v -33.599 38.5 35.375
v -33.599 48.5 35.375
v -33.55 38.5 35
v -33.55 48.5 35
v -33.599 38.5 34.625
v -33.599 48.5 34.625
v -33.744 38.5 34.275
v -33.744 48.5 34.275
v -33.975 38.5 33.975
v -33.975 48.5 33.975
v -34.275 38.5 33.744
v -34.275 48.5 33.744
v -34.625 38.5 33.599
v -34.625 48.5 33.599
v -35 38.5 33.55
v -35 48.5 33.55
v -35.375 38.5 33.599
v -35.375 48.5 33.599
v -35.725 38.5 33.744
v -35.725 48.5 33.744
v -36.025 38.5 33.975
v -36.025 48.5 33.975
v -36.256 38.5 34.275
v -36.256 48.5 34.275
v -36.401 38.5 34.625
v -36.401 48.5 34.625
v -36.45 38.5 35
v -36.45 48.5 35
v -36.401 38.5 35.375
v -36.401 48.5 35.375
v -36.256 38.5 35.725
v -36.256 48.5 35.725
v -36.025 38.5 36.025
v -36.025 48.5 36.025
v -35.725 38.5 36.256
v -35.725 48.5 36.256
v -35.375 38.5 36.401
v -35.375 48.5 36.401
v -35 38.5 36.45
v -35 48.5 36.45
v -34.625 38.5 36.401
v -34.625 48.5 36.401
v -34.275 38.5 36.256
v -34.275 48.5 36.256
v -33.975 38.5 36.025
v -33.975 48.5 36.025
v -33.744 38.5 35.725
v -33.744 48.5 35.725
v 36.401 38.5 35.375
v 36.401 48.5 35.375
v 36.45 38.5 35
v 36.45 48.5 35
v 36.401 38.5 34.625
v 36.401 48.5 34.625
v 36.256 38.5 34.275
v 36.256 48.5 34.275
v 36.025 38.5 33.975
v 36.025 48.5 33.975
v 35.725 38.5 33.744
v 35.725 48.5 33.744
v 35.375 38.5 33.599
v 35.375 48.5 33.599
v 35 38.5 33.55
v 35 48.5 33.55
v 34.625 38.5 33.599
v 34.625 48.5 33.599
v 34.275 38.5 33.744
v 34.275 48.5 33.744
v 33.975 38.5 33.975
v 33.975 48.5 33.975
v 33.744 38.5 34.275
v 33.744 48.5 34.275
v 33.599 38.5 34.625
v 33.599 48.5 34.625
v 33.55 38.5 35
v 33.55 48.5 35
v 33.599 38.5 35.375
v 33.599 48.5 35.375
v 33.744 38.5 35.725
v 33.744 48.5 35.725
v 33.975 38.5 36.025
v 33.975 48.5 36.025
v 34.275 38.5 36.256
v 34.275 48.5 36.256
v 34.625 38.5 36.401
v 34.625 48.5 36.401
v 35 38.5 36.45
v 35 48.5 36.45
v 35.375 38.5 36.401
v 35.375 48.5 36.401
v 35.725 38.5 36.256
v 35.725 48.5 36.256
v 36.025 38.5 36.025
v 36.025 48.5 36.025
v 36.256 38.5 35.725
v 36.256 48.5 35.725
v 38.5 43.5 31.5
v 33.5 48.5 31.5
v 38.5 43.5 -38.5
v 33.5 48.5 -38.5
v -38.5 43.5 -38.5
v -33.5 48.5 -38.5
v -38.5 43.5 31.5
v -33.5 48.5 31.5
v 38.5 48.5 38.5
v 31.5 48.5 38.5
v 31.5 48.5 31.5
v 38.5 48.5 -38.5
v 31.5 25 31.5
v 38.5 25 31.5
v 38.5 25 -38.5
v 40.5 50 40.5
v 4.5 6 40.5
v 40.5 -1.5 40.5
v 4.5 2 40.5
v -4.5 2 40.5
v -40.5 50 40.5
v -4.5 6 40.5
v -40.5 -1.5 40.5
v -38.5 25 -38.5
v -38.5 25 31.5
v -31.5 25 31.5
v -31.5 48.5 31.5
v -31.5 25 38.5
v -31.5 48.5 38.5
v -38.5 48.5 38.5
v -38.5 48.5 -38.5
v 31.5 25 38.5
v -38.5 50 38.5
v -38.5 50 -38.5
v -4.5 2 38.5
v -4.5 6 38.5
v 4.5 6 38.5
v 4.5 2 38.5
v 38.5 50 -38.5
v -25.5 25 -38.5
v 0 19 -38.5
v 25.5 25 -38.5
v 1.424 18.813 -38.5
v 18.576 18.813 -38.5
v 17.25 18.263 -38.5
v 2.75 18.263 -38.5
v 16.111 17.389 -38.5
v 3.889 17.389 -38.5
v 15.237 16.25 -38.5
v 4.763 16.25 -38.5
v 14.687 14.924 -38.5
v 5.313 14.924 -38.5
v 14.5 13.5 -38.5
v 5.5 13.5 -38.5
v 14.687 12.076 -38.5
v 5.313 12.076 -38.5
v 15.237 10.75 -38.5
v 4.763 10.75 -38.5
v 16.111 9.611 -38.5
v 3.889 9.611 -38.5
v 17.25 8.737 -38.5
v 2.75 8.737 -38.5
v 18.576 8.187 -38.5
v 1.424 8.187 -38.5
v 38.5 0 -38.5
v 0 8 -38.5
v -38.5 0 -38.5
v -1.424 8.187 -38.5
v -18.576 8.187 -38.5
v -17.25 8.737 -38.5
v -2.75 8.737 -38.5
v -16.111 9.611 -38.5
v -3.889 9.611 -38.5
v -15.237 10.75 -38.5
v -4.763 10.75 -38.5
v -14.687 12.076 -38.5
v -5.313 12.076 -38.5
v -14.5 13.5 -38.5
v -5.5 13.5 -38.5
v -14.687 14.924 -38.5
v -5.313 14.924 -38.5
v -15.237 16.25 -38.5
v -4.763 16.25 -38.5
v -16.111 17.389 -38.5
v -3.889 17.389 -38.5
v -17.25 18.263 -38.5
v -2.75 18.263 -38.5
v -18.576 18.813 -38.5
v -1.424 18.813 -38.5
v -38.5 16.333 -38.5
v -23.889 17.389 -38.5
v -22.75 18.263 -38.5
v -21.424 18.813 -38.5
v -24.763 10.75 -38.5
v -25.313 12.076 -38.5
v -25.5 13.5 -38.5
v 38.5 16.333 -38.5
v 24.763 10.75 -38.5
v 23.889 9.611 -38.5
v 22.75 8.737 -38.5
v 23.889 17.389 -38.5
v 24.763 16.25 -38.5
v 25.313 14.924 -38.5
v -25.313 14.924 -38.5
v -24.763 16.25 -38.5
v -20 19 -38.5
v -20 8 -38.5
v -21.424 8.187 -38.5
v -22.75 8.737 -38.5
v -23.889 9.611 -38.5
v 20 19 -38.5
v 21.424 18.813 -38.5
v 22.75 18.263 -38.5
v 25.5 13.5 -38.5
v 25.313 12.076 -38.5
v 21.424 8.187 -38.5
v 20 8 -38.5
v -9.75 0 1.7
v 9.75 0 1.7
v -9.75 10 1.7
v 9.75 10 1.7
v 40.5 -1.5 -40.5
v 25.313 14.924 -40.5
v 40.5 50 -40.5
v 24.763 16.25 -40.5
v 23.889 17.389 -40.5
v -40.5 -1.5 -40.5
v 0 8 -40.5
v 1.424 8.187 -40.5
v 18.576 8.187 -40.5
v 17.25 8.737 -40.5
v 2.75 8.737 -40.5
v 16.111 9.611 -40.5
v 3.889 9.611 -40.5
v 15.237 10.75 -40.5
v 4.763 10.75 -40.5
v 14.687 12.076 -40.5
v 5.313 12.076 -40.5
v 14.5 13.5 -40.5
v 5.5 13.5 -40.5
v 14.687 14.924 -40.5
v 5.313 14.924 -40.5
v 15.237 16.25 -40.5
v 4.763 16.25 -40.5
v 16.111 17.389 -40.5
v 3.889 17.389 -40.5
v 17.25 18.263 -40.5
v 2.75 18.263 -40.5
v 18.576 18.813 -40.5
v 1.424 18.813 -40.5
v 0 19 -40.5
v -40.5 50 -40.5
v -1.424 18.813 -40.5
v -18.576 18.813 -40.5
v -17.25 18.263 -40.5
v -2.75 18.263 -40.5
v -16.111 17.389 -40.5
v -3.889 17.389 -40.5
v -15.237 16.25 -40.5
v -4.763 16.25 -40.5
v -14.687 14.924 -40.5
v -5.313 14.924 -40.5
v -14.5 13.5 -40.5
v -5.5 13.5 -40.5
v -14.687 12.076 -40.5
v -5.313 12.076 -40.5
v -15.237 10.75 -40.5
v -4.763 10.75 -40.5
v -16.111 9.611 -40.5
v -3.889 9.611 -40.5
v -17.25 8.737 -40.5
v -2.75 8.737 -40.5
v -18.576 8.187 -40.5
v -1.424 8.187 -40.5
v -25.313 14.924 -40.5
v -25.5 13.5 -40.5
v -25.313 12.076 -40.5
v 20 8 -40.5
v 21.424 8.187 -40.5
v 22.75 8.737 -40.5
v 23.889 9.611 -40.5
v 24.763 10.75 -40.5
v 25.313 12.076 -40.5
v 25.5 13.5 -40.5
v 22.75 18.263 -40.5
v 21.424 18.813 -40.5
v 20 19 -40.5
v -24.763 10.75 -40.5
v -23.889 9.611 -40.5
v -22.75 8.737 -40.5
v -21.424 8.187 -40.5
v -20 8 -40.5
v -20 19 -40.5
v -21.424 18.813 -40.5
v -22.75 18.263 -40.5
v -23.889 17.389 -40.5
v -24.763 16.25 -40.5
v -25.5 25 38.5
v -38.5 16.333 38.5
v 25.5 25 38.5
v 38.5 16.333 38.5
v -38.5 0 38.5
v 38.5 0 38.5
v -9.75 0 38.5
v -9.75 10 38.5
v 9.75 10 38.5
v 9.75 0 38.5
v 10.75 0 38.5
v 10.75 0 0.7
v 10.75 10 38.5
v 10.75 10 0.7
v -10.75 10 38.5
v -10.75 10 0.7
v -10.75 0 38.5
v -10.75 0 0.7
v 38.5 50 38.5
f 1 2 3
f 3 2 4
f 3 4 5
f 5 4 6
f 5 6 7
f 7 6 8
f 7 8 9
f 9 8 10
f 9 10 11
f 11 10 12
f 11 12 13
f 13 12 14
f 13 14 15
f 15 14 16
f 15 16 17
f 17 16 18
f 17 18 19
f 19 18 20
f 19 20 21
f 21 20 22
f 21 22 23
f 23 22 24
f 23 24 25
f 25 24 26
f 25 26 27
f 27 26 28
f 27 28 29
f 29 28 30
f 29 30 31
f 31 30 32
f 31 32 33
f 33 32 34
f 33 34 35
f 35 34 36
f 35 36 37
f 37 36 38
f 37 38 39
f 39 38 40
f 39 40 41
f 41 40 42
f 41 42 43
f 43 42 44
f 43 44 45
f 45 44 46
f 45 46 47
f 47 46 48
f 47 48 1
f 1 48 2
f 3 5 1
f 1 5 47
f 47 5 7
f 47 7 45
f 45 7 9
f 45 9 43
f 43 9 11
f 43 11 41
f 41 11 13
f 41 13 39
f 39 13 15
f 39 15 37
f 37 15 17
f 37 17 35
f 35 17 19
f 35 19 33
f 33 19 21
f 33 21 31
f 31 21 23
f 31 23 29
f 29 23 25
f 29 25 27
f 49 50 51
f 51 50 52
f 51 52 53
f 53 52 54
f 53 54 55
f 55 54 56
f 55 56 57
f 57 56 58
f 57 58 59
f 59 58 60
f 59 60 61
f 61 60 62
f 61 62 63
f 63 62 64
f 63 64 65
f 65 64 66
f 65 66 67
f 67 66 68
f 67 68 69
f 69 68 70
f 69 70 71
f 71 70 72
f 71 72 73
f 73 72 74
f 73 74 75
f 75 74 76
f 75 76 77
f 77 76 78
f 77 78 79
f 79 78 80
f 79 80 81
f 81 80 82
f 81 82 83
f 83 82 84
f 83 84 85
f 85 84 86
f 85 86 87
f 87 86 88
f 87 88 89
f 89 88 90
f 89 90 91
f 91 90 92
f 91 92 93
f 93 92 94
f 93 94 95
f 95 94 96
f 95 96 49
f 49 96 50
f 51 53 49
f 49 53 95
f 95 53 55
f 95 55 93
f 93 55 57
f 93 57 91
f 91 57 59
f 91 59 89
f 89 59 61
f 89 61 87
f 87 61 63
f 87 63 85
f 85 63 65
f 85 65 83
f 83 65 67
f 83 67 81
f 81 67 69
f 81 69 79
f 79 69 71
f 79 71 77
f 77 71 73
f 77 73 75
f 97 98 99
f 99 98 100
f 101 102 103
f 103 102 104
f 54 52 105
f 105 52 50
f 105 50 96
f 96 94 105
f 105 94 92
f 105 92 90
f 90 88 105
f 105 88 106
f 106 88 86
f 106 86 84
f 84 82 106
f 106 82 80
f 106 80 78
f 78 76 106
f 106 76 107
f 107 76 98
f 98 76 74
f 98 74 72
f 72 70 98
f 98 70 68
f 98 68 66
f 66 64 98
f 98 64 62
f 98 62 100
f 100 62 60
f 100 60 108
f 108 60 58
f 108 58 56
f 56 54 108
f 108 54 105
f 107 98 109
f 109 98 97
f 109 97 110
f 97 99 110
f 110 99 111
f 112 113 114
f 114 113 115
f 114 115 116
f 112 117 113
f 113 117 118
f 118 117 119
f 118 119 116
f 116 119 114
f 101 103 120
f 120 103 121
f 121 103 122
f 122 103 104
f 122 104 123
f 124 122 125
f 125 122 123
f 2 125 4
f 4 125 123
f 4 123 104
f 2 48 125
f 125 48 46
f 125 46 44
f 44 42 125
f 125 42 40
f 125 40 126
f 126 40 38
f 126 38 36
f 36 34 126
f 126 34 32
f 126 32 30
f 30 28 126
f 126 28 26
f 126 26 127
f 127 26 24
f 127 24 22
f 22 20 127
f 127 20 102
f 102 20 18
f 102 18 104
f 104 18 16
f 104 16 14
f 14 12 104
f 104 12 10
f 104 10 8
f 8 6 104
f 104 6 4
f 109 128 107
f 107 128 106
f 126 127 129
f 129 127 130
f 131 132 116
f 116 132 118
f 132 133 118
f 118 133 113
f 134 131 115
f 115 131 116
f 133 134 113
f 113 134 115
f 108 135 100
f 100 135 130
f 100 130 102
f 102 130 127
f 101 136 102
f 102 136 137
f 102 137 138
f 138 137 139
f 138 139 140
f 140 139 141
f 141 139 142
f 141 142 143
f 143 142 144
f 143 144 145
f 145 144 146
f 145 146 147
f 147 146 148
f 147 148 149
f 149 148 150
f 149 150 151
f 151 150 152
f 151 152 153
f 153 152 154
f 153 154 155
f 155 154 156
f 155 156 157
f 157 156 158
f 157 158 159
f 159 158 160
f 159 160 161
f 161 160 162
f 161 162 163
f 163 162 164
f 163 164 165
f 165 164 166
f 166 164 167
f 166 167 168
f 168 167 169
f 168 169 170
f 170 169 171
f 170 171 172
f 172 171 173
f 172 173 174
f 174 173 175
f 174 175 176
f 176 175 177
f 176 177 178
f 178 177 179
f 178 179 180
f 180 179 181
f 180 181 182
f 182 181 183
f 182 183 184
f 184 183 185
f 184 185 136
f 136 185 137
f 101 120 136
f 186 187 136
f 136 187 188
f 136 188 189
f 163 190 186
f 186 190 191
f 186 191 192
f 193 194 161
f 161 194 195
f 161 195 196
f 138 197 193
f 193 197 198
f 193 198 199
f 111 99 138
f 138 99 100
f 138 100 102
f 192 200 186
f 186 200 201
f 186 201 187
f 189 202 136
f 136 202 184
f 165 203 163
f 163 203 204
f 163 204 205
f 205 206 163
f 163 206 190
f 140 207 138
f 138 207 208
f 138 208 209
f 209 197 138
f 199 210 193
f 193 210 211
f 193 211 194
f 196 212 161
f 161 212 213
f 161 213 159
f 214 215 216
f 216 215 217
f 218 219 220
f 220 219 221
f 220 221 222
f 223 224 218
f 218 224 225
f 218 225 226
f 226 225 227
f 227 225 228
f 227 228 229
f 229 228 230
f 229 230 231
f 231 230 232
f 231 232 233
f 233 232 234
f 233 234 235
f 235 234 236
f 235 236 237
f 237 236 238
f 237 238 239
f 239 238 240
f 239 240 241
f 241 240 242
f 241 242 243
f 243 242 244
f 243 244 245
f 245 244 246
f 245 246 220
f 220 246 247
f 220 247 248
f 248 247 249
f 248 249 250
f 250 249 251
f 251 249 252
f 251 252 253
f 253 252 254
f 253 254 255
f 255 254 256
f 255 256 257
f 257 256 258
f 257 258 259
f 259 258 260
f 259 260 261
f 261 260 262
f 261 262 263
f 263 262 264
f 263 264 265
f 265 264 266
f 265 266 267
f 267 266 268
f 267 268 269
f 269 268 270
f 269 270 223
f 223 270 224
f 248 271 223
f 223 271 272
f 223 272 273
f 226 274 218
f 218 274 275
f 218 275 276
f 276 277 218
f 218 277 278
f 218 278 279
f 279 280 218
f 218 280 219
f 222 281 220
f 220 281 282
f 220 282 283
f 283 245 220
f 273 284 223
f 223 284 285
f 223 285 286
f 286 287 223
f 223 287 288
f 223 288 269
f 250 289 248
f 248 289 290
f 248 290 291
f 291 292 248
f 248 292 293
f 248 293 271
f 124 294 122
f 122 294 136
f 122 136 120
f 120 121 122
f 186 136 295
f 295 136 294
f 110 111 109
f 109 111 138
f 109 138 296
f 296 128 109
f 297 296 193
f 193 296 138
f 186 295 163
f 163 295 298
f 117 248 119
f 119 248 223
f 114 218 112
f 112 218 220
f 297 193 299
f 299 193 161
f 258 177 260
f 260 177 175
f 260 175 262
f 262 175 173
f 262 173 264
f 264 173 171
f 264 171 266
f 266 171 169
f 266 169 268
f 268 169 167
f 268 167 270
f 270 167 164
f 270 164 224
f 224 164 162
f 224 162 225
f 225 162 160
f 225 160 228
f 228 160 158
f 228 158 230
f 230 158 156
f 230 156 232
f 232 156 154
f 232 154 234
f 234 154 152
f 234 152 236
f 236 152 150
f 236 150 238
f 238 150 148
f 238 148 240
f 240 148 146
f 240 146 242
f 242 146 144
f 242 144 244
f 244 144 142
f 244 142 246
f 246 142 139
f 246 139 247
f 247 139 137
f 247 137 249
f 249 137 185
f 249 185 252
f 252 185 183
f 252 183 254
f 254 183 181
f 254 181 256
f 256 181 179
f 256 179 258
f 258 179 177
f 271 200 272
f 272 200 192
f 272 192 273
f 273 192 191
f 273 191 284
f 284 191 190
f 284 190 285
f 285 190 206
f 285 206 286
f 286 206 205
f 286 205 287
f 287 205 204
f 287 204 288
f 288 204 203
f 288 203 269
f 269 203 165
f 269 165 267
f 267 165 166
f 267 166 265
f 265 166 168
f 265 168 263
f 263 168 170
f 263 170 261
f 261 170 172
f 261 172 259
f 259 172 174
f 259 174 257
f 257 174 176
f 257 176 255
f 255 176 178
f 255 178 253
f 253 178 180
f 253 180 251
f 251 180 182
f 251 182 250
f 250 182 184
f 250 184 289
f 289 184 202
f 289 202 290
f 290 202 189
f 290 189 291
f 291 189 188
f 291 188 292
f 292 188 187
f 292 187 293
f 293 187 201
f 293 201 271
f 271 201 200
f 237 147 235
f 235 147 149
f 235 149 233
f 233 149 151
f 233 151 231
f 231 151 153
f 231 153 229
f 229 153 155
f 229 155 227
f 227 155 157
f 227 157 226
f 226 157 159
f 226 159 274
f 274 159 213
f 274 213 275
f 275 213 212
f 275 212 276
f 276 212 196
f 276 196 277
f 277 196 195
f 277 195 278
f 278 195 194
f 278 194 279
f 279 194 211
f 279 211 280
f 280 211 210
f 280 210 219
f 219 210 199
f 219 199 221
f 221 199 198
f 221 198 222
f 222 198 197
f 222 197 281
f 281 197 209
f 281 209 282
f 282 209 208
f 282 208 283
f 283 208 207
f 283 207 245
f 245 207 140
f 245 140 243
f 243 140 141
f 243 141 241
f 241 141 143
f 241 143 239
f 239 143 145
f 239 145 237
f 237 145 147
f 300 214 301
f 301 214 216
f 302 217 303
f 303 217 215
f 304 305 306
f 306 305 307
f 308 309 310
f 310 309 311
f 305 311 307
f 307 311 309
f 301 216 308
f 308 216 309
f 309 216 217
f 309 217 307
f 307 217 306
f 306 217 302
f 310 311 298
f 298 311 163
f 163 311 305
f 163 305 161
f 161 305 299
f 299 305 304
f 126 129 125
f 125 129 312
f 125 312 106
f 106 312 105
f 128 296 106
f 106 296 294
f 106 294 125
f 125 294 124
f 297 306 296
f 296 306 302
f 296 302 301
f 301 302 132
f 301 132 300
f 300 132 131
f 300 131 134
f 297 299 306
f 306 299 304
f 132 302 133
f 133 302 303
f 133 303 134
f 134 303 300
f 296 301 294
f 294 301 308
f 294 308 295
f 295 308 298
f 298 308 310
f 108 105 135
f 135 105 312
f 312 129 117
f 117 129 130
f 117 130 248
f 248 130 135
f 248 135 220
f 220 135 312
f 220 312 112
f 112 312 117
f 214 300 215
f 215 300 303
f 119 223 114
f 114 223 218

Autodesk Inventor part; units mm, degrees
ref_plane "YZ Plane" through (0, 0, 0) normal (1, 0, 0) x (0, 1, 0)
ref_plane "XZ Plane" through (0, 0, 0) normal (0, 1, 0) x (-1, 0, 0)
ref_plane "XY Plane" through (0, 0, 0) normal (0, 0, 1) x (1, 0, 0)
sketch "Sketch1" plane through (0, 0, 0) normal (0, 1, 0) x (-1, 0, 0)
  line L0 (40.5, 40.5) -> (-40.5, 40.5)
  line L1 (-40.5, 40.5) -> (-40.5, -40.5)
  line L2 (-40.5, -40.5) -> (40.5, -40.5)
  line L3 (40.5, -40.5) -> (40.5, 40.5)
  line L4 (40.5, 40.5) -> (-40.5, -40.5) construction
  line L5 (-40.5, 40.5) -> (40.5, -40.5) construction
  point P0 (0, 0)
  dimension "box_width" = 81
  dimension "box_height" = 81
extrude "Base" add sketch "Sketch1" against normal blind 1.5
sketch "Sketch2" plane through (0, 0, 0) normal (0, 1, 0) x (-1, 0, 0)
  line L0 (40.5, -40.5) -> (-40.5, -40.5) projected
  line L1 (40.5, 40.5) -> (-40.5, 40.5)
  line L2 (-40.5, 40.5) -> (-40.5, -40.5)
  line L3 (-40.5, -40.5) -> (40.5, -40.5)
  line L4 (40.5, -40.5) -> (40.5, 40.5)
  line L5 (40.5, 40.5) -> (-40.5, -40.5) construction
  line L6 (-40.5, 40.5) -> (40.5, -40.5) construction
  line L7 (38.5, 38.5) -> (-38.5, 38.5)
  line L8 (-38.5, 38.5) -> (-38.5, -38.5)
  line L9 (-38.5, -38.5) -> (38.5, -38.5)
  line L10 (38.5, -38.5) -> (38.5, 38.5)
  line L11 (38.5, 38.5) -> (-38.5, -38.5) construction
  line L12 (-38.5, 38.5) -> (38.5, -38.5) construction
  point P0 (0, 0)
  dimension "wall_thickness" = 2
extrude "Wall" add sketch "Sketch2" along normal blind 50
sketch "Sketch3" plane through (0, 0, 0) normal (0, 1, 0) x (-1, 0, 0)
  line L0 (-9.75, 39.5) -> (9.75, 39.5)
  line L1 (9.75, 39.5) -> (9.75, 1.7)
  line L2 (9.75, 1.7) -> (-9.75, 1.7)
  line L3 (-9.75, 1.7) -> (-9.75, 39.5)
  line L4 (-9.75, 39.5) -> (9.75, 1.7) construction
  line L5 (9.75, 39.5) -> (-9.75, 1.7) construction
  line L6 (0, 20.6) -> (0, 0) construction
  line L7 (10.75, 40.5) -> (-10.75, 40.5)
  line L8 (-10.75, 40.5) -> (-10.75, 0.7)
  line L9 (-10.75, 0.7) -> (10.75, 0.7)
  line L10 (10.75, 0.7) -> (10.75, 40.5)
  line L11 (10.75, 40.5) -> (-10.75, 0.7) construction
  line L12 (-10.75, 40.5) -> (10.75, 0.7) construction
  line L13 (40.5, 40.5) -> (-40.5, 40.5) projected
  point P0 (0, 40.5)
  dimension "d7" = 37.8
  dimension "d8" = 19.5
  dimension "d9" = 1
  dimension "d10" = 1
extrude "Teensy Wall" add sketch "Sketch3" along normal blind 10
sketch "Sketch4" plane through (40.5, -1.5, -40.5) normal (0, 0, -1) x (-1, 0, 0)
  line L0 (79, 51.5) -> (2, 51.5) construction
  line L1 (2, 51.5) -> (79, 51.5) construction
  line L2 (40.5, 51.5) -> (40.5, 15) construction
  line L3 (40.5, 15) -> (20.5, 15) construction
  circle A0 centre (20.5, 15) radius 5.5
  line L4 (40.5, 15) -> (40.5, 0) construction
  line L5 (81, 0) -> (0, 0) construction
  circle A1 centre (40.5, 15) radius 5.5
  circle A2 centre (60.5, 15) radius 5.5
  dimension "d21" = 11
  dimension "d23" = 20
  dimension "d59" = 20
extrude "BNC Holes" cut sketch "Sketch4" against normal up to surface (2 mm away)
sketch "Sketch7" plane through (-38.5, 0, -38.5) normal (0, 0, 1) x (1, 0, 0)
  line L0 (79, 50) -> (-2, 50) projected
  line L1 (-2, -1.5) -> (-2, 50) projected
  line L2 (-2, 50) -> (-2, 25) construction
  line L3 (-2, 25) -> (13, 25)
  line L4 (13, 25) -> (-2, 15)
  line L5 (-2, 15) -> (-2, 25)
  line L6 (38.5, 50) -> (38.5, 0) construction
  line L7 (79, -1.5) -> (79, 50)
  line L8 (79, 50) -> (79, 25) construction
  line L9 (79, 25) -> (64, 25)
  line L10 (64, 25) -> (79, 15)
  line L11 (79, 15) -> (79, 25)
  point P0 (-2, 30)
  dimension "d32" = 25
  dimension "d33" = 10
  dimension "d34" = 15
extrude "Battery Support" add sketch "Sketch7" along normal up to next
sketch "Sketch8" plane through (-40.5, -1.5, 40.5) normal (0, 0, 1) x (1, 0, 0)
  line L0 (79, 51.5) -> (2, 51.5) construction
  line L1 (40.5, 51.5) -> (40.5, 1.5) construction
  line L2 (36, 3.5) -> (45, 3.5)
  line L3 (45, 3.5) -> (45, 7.5)
  line L4 (45, 7.5) -> (36, 7.5)
  line L5 (36, 7.5) -> (36, 3.5)
  line L6 (36, 3.5) -> (45, 7.5) construction
  line L7 (45, 3.5) -> (36, 7.5) construction
  point P0 (40.5, 5.5)
  dimension "d36" = 9
  dimension "d37" = 4
  dimension "d38" = 2
extrude "USB Hole" cut sketch "Sketch8" against normal up to next
sketch "Sketch9" plane through (-38.5, 25, -38.5) normal (0, 1, 0) x (1, 0, 0)
  line L0 (0, 0) -> (77, 0) projected
  line L1 (64, 0) -> (64, -77) projected
  line L2 (49.25, -77) -> (77, -77) projected
  line L3 (77, 0) -> (77, -77) projected
  line L4 (85.7069, 0) -> (84.513, 0)
  line L5 (77, -77) -> (70, -77)
  line L6 (70, -77) -> (70, -70)
  line L7 (70, -70) -> (77, -70)
  line L8 (77, -70) -> (77, -77)
  line L9 (77, 0) -> (0, 0) projected
  line L10 (0, -77) -> (5.9059, -77)
  line L11 (0, -77) -> (5.9059, -77)
  line L12 (0, -77) -> (7, -77)
  line L13 (7, -77) -> (7, -70)
  line L14 (7, -70) -> (0, -70)
  line L15 (0, -70) -> (0, -77)
  line L16 (77, -77) -> (0, -77) projected
  line L17 (0, -77) -> (0, 0) projected
  dimension "d66" = 7
extrude "Plate Support" add sketch "Sketch9" along normal blind 23.5 contours L14 L13 L12 L10 L15 | L3 L2 L6 L7
sketch "Sketch15" plane through (-38.5, 0, -38.5) normal (0, 0, 1) x (1, 0, 0)
  line L0 (-2, 48.5) -> (-2, 41.5)
  line L1 (-2, 41.5) -> (5, 48.5)
  line L2 (5, 48.5) -> (-2, 48.5)
  line L3 (-2, -1.5) -> (-2, 50) projected
  line L4 (79, 50) -> (-2, 50) projected
  line L5 (38.5, 50) -> (38.5, -1.5)
  line L6 (-2, -1.5) -> (79, -1.5) projected
  line L7 (79, 48.5) -> (79, 41.5)
  line L8 (79, 41.5) -> (72, 48.5)
  line L9 (72, 48.5) -> (79, 48.5)
  point P0 (38.5, 0)
  dimension "d70" = 7
  dimension "d71" = 1.5
extrude "Extrusion12" add sketch "Sketch15" along normal up to surface (79 mm away) contours L2 L1 L0 | L7 L8 L9
sketch "Sketch14" plane through (-38.5, 48.5, -38.5) normal (0, 1, 0) x (1, 0, 0)
  circle A0 centre (3.5, -73.5) radius 1.45
  line L0 (7, -70) -> (7, -77) construction
  line L1 (3.5, -73.5) -> (7, -70) construction
  line L2 (3.5, -73.5) -> (7, -77) construction
  line L3 (77, -77) -> (0, -77) construction
  line L4 (0, -77) -> (3.5, -73.5) construction
  circle A1 centre (73.5, -73.5) radius 1.45
  line L5 (70, -77) -> (70, -70) construction
  line L6 (70, -70) -> (73.5, -73.5) construction
  line L7 (70, -70) -> (77, -70) construction
  line L8 (73.5, -73.5) -> (77, -70) construction
  line L9 (73.5, -73.5) -> (70, -77) construction
  point P0 (38.5, -38.5)
  dimension "d67" = 2.9
extrude "Extrusion11" cut sketch "Sketch14" against normal blind 10
properties part number "teensy_box"
